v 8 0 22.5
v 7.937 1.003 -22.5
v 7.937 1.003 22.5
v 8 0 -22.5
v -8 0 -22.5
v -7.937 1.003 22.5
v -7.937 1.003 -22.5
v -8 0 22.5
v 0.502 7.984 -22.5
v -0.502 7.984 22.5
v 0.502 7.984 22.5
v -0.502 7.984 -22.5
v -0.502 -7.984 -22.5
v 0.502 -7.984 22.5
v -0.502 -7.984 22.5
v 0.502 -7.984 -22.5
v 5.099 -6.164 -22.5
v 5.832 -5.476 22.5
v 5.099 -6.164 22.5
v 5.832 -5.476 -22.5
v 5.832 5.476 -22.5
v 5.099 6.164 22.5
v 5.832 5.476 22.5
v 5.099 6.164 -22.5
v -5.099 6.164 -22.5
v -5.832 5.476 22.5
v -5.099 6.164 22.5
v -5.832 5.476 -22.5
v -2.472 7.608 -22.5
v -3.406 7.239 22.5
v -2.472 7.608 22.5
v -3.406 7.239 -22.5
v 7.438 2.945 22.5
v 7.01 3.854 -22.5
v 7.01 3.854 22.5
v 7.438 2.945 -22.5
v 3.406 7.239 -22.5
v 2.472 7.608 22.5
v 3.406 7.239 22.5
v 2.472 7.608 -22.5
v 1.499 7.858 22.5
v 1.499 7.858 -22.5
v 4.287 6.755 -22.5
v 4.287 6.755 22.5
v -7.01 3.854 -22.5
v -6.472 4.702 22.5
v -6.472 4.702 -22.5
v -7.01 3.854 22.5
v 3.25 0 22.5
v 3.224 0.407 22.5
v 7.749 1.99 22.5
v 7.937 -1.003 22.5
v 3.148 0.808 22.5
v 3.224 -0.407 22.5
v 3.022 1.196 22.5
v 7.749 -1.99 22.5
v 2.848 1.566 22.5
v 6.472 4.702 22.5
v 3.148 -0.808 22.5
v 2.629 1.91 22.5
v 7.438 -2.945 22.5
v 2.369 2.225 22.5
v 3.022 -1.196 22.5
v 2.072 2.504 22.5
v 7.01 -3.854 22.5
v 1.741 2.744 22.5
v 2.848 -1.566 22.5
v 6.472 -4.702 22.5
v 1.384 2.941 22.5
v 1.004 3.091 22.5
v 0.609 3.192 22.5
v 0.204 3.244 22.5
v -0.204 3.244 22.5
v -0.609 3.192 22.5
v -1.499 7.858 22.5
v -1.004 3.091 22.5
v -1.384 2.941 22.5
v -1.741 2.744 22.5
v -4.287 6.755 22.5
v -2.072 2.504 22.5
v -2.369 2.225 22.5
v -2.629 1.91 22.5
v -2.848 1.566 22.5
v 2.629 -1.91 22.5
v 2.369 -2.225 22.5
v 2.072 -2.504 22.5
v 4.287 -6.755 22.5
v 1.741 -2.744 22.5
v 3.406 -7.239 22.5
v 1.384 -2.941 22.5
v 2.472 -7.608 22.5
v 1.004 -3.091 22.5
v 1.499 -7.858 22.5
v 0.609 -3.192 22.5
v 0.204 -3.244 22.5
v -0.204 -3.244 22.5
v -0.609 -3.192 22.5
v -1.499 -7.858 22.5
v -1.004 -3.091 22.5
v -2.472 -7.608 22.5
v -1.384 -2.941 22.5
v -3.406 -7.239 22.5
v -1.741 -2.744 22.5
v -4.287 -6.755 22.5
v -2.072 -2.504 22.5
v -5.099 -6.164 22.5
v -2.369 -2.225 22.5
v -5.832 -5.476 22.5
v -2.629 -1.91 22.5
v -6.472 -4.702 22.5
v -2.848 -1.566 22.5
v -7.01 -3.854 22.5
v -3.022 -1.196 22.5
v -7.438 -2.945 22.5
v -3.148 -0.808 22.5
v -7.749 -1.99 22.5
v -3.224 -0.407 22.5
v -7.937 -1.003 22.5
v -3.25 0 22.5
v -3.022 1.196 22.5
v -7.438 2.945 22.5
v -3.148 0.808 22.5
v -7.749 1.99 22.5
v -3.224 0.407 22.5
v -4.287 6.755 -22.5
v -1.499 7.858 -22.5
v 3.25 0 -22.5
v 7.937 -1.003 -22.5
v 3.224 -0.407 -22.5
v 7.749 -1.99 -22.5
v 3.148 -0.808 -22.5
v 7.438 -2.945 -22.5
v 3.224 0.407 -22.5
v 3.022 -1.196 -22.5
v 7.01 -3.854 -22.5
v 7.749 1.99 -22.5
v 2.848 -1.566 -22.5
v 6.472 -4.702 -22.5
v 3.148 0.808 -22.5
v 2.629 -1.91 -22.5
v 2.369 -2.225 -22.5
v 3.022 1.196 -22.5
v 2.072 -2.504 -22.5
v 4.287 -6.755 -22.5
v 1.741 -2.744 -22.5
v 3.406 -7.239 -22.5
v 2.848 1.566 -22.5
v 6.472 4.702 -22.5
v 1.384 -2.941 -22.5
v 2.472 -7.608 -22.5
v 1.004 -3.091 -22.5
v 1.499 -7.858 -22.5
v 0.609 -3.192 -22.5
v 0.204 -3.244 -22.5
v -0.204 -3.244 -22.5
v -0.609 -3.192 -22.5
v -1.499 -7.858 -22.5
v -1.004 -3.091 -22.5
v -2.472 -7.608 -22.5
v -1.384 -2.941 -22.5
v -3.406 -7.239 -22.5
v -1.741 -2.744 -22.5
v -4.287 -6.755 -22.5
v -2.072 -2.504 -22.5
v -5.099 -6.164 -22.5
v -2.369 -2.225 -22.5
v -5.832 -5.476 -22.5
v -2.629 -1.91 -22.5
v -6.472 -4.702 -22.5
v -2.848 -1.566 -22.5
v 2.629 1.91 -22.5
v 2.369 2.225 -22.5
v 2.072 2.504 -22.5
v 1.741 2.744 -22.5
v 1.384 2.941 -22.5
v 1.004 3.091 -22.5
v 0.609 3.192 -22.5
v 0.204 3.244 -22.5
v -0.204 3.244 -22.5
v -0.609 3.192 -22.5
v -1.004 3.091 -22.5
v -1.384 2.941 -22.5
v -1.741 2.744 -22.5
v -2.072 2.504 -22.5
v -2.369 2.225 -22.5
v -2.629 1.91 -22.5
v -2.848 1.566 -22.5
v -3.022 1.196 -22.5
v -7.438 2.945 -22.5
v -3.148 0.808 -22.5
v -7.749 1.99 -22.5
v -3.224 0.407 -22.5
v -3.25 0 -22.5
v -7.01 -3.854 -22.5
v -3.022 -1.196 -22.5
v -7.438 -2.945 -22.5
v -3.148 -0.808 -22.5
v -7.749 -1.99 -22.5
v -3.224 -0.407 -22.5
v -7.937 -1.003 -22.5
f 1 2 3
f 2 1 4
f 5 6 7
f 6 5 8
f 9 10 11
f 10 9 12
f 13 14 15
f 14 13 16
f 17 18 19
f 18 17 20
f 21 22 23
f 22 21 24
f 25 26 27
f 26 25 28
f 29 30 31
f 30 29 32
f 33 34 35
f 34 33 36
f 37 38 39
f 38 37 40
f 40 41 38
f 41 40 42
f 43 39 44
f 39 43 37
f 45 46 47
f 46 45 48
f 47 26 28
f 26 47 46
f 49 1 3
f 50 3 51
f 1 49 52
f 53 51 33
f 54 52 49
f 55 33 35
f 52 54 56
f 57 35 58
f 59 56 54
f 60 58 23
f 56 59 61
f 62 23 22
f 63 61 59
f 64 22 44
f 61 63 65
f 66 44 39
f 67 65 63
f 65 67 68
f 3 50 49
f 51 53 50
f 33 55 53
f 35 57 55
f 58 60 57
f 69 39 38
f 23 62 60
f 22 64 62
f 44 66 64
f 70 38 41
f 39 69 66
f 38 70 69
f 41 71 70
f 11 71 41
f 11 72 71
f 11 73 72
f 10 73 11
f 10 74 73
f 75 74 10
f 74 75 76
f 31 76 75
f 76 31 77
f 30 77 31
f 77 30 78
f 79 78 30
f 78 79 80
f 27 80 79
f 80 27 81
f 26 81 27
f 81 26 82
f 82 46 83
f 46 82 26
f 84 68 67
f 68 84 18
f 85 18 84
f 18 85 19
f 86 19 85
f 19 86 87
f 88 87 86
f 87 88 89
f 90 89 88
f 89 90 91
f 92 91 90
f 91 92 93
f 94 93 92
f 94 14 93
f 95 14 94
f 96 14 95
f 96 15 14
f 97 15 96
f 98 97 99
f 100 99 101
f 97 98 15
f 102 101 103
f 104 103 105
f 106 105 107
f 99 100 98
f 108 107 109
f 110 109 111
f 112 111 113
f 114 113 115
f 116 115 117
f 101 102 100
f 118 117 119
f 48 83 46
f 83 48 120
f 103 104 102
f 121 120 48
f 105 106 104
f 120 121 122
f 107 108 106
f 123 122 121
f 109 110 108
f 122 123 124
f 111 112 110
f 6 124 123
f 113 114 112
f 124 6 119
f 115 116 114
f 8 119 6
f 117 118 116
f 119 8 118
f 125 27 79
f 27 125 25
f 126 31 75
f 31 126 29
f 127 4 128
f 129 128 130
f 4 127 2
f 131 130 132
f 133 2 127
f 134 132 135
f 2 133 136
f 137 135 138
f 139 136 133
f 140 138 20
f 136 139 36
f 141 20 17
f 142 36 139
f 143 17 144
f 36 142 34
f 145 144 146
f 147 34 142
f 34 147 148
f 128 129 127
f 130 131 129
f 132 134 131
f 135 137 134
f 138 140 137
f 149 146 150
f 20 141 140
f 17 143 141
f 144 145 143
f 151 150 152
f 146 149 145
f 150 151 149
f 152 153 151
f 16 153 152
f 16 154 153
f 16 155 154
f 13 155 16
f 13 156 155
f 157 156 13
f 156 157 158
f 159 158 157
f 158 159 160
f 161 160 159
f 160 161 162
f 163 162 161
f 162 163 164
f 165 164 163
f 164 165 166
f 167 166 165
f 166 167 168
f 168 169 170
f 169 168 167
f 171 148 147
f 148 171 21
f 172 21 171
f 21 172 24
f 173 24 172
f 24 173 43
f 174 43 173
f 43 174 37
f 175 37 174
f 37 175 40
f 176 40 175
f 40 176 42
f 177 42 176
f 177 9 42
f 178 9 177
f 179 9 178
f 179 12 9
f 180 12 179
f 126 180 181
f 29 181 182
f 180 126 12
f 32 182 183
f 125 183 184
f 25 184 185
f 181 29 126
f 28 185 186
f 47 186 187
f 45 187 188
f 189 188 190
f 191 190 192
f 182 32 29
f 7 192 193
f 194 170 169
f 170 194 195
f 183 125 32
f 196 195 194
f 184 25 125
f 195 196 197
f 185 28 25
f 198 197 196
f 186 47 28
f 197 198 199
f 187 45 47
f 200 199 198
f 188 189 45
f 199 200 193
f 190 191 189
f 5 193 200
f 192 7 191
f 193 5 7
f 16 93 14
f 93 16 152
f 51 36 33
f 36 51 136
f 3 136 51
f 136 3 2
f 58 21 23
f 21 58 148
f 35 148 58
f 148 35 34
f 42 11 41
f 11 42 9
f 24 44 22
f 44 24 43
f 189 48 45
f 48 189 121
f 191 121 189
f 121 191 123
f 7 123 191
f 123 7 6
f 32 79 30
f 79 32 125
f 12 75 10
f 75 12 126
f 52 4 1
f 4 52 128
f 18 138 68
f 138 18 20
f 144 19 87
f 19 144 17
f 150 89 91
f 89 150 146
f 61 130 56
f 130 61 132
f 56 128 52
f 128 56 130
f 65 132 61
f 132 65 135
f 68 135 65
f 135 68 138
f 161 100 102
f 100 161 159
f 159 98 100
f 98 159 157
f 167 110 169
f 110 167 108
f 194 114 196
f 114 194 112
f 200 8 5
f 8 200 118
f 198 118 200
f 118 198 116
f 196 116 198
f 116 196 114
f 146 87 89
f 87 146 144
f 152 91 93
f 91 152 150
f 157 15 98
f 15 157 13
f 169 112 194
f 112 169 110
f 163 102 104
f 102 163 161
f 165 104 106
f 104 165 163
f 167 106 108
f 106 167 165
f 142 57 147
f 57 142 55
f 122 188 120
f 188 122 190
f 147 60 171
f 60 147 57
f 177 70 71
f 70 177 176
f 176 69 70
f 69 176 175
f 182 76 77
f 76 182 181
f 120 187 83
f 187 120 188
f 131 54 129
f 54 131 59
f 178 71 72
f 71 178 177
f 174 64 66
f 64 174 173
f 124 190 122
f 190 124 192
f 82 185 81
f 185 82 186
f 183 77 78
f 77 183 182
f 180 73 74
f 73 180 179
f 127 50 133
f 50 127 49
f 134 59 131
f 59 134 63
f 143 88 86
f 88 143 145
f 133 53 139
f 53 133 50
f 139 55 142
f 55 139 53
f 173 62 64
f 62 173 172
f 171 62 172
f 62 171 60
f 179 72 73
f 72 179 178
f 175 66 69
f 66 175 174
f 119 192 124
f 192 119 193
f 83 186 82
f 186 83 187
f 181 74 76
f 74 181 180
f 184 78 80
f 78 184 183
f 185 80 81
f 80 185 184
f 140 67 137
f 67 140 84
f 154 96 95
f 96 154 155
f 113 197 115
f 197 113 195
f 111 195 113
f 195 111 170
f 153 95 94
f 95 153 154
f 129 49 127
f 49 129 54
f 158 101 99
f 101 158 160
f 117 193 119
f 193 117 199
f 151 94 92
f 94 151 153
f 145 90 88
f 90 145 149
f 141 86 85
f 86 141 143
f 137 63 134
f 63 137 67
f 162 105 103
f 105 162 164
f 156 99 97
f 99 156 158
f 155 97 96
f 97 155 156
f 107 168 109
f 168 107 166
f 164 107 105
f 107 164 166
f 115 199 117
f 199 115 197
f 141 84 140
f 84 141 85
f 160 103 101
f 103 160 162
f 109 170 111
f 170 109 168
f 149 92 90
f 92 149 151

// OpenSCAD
$fn = 50;


difference() {
	union() {
		translate(v = [0, 0, -22.5000000000]) {
			cylinder(h = 45, r = 8.0000000000);
		}
	}
	union() {
		translate(v = [0, 0, -100.0000000000]) {
			cylinder(h = 200, r = 3.2500000000);
		}
	}
}
